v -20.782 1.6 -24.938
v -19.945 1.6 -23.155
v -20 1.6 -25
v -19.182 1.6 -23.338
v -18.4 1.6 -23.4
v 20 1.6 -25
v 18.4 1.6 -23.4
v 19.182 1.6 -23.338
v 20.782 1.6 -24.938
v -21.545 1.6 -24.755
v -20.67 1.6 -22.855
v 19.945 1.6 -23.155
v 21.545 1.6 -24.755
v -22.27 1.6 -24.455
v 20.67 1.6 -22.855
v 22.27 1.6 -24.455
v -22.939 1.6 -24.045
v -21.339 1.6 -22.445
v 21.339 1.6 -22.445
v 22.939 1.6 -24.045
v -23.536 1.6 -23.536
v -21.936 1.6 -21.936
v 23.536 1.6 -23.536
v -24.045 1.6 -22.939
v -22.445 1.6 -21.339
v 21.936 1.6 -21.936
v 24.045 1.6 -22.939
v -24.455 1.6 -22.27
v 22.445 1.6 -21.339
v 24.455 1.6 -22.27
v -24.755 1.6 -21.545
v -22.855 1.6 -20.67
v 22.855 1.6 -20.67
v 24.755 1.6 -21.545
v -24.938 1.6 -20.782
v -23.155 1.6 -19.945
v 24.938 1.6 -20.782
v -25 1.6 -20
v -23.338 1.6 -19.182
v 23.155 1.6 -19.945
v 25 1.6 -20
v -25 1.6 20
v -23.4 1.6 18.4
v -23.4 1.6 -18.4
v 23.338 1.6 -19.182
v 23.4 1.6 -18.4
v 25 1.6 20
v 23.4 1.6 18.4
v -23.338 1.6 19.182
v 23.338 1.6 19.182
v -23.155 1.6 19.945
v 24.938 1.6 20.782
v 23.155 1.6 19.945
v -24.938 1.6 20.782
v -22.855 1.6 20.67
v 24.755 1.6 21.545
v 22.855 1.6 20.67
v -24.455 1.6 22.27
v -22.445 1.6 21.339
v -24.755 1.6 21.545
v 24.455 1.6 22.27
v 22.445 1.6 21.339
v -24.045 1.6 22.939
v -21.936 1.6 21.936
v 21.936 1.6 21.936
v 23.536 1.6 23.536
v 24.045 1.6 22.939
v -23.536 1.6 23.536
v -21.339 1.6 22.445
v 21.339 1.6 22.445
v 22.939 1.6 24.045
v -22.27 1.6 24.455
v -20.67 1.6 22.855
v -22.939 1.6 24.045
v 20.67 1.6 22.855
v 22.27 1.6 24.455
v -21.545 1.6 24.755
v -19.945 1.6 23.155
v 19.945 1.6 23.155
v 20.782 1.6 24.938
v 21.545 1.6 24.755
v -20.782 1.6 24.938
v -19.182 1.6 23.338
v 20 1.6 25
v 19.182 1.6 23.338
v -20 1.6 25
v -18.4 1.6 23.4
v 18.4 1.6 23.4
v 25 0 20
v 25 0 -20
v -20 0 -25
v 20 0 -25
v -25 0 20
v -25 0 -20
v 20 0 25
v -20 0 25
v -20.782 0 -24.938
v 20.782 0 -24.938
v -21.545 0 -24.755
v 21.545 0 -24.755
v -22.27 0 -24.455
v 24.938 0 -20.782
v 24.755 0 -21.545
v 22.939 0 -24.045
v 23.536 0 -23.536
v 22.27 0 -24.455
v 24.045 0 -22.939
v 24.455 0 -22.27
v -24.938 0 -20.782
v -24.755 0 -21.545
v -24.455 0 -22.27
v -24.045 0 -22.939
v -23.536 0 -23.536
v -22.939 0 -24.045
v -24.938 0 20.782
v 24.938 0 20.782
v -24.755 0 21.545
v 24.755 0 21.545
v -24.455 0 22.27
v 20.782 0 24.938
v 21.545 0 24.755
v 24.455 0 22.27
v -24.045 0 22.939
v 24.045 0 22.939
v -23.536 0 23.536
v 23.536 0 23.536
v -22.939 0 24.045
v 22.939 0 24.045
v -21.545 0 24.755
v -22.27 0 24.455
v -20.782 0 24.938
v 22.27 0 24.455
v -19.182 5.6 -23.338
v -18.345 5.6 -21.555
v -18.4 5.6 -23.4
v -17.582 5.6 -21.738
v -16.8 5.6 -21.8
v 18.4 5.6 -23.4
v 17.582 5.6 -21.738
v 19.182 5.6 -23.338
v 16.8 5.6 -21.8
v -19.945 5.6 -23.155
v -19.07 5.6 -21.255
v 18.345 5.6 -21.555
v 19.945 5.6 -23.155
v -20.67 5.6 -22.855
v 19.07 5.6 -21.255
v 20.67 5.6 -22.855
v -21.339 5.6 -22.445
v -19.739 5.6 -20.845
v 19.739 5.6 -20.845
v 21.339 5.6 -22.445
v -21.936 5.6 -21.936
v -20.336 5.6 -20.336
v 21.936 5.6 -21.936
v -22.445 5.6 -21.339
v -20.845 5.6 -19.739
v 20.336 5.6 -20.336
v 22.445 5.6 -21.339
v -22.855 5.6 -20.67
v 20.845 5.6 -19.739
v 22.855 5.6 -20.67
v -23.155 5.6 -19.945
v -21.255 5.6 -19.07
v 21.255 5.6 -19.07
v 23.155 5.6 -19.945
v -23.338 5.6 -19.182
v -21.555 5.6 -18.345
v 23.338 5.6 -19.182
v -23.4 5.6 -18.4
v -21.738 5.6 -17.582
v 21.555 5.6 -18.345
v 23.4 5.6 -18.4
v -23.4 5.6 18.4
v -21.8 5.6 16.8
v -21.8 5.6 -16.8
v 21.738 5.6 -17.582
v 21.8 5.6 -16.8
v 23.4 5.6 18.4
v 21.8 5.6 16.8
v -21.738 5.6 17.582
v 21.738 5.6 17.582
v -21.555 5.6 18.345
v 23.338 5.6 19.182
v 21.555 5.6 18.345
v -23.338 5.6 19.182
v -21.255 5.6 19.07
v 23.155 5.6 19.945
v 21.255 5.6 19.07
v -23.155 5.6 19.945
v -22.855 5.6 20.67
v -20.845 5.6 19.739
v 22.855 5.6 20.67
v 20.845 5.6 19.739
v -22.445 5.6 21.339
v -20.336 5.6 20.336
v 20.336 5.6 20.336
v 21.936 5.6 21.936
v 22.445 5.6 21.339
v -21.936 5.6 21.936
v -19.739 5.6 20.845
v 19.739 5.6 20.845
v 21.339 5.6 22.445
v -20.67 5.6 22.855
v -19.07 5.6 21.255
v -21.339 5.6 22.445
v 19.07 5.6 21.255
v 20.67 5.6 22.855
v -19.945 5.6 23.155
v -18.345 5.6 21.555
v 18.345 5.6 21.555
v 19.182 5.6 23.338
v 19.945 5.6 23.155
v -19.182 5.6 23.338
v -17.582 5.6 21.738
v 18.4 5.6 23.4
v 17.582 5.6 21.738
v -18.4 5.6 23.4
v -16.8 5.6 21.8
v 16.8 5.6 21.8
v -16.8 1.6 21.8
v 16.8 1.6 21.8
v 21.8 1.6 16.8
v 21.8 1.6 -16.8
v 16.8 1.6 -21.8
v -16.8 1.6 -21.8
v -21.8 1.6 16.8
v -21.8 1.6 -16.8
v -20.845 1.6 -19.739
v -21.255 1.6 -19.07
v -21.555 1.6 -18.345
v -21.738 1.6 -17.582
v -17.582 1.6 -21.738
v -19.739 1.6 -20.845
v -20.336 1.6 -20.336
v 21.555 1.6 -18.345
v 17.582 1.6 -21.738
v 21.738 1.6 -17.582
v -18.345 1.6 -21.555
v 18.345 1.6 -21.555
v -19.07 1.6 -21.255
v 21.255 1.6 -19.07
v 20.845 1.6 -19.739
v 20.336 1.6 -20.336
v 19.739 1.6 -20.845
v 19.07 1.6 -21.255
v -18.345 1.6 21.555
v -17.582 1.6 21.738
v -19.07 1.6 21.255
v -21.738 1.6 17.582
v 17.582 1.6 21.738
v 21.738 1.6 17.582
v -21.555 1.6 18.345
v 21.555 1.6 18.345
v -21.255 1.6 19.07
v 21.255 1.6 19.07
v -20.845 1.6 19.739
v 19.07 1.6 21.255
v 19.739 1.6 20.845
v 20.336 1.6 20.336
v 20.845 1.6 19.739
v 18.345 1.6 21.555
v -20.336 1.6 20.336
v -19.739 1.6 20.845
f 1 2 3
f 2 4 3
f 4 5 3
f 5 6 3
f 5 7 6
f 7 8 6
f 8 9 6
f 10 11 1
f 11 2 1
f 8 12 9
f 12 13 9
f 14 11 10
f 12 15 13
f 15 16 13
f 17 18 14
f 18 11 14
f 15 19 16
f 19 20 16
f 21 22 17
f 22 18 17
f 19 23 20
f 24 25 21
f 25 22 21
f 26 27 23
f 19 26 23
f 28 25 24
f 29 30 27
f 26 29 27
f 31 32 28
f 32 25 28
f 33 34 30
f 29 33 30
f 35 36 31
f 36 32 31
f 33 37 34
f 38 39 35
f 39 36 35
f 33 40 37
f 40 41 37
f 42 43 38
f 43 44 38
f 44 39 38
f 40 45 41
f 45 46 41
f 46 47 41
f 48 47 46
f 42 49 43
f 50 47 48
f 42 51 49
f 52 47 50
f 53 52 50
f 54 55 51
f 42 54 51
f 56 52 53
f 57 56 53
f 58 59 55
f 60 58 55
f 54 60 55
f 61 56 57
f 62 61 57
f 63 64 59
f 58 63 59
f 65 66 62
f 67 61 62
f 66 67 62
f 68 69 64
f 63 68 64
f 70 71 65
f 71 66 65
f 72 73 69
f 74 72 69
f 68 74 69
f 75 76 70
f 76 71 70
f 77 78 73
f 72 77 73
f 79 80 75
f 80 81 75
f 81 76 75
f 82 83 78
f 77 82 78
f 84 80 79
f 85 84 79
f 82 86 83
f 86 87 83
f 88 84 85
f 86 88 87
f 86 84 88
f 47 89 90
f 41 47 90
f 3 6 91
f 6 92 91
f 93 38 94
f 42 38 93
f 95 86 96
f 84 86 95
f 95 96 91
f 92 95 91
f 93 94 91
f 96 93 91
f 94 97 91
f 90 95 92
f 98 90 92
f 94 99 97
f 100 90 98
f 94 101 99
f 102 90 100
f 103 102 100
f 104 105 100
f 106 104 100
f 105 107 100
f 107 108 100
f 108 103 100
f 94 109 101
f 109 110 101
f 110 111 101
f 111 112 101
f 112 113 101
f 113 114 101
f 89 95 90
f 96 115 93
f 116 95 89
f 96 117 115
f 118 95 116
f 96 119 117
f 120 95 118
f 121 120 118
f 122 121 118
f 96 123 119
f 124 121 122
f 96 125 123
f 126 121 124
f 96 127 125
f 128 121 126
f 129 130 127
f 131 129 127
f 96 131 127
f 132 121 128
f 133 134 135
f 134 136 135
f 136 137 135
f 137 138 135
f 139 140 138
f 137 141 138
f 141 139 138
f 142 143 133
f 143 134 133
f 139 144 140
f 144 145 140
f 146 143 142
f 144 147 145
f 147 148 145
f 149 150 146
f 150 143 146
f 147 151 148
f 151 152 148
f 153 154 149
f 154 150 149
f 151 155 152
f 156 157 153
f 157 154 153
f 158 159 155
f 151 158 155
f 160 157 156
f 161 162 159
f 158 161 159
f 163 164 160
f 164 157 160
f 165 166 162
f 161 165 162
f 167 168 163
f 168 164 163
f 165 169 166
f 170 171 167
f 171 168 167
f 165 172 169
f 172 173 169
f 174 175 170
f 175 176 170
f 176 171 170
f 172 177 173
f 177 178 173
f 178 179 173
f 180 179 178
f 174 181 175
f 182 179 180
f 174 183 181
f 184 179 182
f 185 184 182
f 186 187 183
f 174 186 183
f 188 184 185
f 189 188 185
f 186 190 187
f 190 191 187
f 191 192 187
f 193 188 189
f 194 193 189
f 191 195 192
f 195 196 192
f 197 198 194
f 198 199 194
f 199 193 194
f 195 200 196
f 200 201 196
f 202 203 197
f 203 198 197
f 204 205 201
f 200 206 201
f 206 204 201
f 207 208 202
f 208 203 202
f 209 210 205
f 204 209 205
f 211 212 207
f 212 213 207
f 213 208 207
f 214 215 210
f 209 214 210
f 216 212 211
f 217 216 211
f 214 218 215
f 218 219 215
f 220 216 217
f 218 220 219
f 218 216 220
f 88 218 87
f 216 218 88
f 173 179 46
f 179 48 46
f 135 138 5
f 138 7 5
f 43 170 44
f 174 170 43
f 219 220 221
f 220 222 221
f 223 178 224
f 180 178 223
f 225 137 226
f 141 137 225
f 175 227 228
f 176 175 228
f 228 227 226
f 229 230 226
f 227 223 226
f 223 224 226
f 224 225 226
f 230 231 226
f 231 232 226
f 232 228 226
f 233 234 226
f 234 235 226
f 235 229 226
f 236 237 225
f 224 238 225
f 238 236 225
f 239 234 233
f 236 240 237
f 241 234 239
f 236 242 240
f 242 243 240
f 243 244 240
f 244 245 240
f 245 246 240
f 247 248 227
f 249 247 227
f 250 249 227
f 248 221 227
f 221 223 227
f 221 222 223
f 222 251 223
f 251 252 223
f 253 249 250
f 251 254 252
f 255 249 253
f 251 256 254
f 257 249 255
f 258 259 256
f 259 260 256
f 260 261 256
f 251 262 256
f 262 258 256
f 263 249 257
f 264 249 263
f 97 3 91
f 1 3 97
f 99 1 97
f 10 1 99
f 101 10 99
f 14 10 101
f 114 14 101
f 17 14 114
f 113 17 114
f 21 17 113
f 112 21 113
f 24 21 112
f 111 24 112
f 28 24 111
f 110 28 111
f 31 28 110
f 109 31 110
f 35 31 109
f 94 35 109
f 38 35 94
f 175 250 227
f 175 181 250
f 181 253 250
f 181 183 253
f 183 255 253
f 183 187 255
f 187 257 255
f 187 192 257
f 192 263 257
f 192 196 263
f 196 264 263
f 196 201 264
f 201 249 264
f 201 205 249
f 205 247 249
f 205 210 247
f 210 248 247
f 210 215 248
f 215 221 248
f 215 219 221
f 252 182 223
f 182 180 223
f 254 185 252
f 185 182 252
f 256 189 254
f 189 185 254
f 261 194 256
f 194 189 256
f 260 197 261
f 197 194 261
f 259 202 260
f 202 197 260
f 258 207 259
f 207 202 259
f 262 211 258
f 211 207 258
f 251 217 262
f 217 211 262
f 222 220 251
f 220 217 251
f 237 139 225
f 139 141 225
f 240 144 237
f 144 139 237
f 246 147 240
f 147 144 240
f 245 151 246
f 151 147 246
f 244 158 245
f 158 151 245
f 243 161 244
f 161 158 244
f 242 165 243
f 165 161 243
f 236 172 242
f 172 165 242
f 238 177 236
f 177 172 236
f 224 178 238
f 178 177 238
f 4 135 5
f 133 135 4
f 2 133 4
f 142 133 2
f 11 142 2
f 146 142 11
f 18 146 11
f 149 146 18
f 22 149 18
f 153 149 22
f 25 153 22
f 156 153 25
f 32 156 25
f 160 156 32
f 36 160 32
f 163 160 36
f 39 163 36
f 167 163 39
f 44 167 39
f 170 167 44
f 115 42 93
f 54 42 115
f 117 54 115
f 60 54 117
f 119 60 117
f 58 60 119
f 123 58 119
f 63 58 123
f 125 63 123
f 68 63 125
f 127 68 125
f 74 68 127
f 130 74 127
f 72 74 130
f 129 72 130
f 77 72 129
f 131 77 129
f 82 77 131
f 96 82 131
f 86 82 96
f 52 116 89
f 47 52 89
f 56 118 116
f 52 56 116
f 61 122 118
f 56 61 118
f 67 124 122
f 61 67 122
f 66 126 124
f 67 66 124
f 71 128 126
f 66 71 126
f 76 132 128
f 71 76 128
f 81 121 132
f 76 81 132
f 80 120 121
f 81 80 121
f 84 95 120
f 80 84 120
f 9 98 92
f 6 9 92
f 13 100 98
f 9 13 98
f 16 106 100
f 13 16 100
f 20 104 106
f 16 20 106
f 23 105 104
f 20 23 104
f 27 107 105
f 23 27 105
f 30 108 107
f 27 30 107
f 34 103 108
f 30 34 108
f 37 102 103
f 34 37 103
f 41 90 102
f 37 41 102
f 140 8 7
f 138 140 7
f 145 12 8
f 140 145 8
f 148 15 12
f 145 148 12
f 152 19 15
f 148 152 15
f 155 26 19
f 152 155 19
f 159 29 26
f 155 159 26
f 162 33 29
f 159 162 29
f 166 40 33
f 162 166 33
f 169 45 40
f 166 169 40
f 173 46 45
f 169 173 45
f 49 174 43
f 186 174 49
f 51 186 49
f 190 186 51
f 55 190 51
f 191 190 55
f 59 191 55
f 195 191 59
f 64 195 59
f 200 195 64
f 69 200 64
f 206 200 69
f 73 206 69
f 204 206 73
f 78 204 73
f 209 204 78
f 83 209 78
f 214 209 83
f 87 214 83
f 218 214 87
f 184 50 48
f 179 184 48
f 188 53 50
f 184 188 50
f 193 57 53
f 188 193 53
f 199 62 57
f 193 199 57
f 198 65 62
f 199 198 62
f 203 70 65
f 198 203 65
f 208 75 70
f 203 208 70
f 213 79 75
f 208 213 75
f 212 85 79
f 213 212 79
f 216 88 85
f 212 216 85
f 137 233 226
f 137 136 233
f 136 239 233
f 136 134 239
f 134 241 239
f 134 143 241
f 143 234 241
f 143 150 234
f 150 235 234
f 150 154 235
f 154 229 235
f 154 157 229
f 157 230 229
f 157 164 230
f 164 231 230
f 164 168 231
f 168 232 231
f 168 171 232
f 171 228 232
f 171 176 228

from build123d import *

# Parameters (mm, degrees)
SKETCH1_W           = 50
SKETCH1_H           = 50
BOSS_EXTRUDE1_DEPTH = 1.6
SKETCH2_W           = 46.8
SKETCH2_H           = 46.8
SKETCH2_W_2         = 43.6
SKETCH2_H_2         = 43.6
BOSS_EXTRUDE2_DEPTH = 4
FILLET1_R           = 5


with BuildPart() as part:
    # Sketch1 → Boss-Extrude1 (new body)
    with BuildSketch(Plane(origin=(0, 0, 0), x_dir=(1, 0, 0), z_dir=(0, 1, 0))):
        Rectangle(SKETCH1_W, SKETCH1_H)
    extrude(amount=BOSS_EXTRUDE1_DEPTH)

    # Sketch2 → Boss-Extrude2 (add)
    with BuildSketch(Plane(origin=(0, 1.6, 0), x_dir=(1, 0, 0), z_dir=(0, 1, 0))):
        Rectangle(SKETCH2_W, SKETCH2_H)
        Rectangle(SKETCH2_W_2, SKETCH2_H_2, mode=Mode.SUBTRACT)
    extrude(amount=BOSS_EXTRUDE2_DEPTH)

    # Fillet1
    fillet1_edges = [part.edges().sort_by_distance(p)[0] for p in [
        (-23.4, 3.6, 23.4),
        (23.4, 3.6, 23.4),
        (23.4, 3.6, -23.4),
        (-23.4, 3.6, -23.4),
        (21.8, 3.6, 21.8),
        (21.8, 3.6, -21.8),
        (-21.8, 3.6, -21.8),
        (-21.8, 3.6, 21.8),
        (25, 0.8, 25),
        (-25, 0.8, 25),
        (-25, 0.8, -25),
        (25, 0.8, -25),
    ]]
    fillet(fillet1_edges, radius=FILLET1_R)


solid = part.part
